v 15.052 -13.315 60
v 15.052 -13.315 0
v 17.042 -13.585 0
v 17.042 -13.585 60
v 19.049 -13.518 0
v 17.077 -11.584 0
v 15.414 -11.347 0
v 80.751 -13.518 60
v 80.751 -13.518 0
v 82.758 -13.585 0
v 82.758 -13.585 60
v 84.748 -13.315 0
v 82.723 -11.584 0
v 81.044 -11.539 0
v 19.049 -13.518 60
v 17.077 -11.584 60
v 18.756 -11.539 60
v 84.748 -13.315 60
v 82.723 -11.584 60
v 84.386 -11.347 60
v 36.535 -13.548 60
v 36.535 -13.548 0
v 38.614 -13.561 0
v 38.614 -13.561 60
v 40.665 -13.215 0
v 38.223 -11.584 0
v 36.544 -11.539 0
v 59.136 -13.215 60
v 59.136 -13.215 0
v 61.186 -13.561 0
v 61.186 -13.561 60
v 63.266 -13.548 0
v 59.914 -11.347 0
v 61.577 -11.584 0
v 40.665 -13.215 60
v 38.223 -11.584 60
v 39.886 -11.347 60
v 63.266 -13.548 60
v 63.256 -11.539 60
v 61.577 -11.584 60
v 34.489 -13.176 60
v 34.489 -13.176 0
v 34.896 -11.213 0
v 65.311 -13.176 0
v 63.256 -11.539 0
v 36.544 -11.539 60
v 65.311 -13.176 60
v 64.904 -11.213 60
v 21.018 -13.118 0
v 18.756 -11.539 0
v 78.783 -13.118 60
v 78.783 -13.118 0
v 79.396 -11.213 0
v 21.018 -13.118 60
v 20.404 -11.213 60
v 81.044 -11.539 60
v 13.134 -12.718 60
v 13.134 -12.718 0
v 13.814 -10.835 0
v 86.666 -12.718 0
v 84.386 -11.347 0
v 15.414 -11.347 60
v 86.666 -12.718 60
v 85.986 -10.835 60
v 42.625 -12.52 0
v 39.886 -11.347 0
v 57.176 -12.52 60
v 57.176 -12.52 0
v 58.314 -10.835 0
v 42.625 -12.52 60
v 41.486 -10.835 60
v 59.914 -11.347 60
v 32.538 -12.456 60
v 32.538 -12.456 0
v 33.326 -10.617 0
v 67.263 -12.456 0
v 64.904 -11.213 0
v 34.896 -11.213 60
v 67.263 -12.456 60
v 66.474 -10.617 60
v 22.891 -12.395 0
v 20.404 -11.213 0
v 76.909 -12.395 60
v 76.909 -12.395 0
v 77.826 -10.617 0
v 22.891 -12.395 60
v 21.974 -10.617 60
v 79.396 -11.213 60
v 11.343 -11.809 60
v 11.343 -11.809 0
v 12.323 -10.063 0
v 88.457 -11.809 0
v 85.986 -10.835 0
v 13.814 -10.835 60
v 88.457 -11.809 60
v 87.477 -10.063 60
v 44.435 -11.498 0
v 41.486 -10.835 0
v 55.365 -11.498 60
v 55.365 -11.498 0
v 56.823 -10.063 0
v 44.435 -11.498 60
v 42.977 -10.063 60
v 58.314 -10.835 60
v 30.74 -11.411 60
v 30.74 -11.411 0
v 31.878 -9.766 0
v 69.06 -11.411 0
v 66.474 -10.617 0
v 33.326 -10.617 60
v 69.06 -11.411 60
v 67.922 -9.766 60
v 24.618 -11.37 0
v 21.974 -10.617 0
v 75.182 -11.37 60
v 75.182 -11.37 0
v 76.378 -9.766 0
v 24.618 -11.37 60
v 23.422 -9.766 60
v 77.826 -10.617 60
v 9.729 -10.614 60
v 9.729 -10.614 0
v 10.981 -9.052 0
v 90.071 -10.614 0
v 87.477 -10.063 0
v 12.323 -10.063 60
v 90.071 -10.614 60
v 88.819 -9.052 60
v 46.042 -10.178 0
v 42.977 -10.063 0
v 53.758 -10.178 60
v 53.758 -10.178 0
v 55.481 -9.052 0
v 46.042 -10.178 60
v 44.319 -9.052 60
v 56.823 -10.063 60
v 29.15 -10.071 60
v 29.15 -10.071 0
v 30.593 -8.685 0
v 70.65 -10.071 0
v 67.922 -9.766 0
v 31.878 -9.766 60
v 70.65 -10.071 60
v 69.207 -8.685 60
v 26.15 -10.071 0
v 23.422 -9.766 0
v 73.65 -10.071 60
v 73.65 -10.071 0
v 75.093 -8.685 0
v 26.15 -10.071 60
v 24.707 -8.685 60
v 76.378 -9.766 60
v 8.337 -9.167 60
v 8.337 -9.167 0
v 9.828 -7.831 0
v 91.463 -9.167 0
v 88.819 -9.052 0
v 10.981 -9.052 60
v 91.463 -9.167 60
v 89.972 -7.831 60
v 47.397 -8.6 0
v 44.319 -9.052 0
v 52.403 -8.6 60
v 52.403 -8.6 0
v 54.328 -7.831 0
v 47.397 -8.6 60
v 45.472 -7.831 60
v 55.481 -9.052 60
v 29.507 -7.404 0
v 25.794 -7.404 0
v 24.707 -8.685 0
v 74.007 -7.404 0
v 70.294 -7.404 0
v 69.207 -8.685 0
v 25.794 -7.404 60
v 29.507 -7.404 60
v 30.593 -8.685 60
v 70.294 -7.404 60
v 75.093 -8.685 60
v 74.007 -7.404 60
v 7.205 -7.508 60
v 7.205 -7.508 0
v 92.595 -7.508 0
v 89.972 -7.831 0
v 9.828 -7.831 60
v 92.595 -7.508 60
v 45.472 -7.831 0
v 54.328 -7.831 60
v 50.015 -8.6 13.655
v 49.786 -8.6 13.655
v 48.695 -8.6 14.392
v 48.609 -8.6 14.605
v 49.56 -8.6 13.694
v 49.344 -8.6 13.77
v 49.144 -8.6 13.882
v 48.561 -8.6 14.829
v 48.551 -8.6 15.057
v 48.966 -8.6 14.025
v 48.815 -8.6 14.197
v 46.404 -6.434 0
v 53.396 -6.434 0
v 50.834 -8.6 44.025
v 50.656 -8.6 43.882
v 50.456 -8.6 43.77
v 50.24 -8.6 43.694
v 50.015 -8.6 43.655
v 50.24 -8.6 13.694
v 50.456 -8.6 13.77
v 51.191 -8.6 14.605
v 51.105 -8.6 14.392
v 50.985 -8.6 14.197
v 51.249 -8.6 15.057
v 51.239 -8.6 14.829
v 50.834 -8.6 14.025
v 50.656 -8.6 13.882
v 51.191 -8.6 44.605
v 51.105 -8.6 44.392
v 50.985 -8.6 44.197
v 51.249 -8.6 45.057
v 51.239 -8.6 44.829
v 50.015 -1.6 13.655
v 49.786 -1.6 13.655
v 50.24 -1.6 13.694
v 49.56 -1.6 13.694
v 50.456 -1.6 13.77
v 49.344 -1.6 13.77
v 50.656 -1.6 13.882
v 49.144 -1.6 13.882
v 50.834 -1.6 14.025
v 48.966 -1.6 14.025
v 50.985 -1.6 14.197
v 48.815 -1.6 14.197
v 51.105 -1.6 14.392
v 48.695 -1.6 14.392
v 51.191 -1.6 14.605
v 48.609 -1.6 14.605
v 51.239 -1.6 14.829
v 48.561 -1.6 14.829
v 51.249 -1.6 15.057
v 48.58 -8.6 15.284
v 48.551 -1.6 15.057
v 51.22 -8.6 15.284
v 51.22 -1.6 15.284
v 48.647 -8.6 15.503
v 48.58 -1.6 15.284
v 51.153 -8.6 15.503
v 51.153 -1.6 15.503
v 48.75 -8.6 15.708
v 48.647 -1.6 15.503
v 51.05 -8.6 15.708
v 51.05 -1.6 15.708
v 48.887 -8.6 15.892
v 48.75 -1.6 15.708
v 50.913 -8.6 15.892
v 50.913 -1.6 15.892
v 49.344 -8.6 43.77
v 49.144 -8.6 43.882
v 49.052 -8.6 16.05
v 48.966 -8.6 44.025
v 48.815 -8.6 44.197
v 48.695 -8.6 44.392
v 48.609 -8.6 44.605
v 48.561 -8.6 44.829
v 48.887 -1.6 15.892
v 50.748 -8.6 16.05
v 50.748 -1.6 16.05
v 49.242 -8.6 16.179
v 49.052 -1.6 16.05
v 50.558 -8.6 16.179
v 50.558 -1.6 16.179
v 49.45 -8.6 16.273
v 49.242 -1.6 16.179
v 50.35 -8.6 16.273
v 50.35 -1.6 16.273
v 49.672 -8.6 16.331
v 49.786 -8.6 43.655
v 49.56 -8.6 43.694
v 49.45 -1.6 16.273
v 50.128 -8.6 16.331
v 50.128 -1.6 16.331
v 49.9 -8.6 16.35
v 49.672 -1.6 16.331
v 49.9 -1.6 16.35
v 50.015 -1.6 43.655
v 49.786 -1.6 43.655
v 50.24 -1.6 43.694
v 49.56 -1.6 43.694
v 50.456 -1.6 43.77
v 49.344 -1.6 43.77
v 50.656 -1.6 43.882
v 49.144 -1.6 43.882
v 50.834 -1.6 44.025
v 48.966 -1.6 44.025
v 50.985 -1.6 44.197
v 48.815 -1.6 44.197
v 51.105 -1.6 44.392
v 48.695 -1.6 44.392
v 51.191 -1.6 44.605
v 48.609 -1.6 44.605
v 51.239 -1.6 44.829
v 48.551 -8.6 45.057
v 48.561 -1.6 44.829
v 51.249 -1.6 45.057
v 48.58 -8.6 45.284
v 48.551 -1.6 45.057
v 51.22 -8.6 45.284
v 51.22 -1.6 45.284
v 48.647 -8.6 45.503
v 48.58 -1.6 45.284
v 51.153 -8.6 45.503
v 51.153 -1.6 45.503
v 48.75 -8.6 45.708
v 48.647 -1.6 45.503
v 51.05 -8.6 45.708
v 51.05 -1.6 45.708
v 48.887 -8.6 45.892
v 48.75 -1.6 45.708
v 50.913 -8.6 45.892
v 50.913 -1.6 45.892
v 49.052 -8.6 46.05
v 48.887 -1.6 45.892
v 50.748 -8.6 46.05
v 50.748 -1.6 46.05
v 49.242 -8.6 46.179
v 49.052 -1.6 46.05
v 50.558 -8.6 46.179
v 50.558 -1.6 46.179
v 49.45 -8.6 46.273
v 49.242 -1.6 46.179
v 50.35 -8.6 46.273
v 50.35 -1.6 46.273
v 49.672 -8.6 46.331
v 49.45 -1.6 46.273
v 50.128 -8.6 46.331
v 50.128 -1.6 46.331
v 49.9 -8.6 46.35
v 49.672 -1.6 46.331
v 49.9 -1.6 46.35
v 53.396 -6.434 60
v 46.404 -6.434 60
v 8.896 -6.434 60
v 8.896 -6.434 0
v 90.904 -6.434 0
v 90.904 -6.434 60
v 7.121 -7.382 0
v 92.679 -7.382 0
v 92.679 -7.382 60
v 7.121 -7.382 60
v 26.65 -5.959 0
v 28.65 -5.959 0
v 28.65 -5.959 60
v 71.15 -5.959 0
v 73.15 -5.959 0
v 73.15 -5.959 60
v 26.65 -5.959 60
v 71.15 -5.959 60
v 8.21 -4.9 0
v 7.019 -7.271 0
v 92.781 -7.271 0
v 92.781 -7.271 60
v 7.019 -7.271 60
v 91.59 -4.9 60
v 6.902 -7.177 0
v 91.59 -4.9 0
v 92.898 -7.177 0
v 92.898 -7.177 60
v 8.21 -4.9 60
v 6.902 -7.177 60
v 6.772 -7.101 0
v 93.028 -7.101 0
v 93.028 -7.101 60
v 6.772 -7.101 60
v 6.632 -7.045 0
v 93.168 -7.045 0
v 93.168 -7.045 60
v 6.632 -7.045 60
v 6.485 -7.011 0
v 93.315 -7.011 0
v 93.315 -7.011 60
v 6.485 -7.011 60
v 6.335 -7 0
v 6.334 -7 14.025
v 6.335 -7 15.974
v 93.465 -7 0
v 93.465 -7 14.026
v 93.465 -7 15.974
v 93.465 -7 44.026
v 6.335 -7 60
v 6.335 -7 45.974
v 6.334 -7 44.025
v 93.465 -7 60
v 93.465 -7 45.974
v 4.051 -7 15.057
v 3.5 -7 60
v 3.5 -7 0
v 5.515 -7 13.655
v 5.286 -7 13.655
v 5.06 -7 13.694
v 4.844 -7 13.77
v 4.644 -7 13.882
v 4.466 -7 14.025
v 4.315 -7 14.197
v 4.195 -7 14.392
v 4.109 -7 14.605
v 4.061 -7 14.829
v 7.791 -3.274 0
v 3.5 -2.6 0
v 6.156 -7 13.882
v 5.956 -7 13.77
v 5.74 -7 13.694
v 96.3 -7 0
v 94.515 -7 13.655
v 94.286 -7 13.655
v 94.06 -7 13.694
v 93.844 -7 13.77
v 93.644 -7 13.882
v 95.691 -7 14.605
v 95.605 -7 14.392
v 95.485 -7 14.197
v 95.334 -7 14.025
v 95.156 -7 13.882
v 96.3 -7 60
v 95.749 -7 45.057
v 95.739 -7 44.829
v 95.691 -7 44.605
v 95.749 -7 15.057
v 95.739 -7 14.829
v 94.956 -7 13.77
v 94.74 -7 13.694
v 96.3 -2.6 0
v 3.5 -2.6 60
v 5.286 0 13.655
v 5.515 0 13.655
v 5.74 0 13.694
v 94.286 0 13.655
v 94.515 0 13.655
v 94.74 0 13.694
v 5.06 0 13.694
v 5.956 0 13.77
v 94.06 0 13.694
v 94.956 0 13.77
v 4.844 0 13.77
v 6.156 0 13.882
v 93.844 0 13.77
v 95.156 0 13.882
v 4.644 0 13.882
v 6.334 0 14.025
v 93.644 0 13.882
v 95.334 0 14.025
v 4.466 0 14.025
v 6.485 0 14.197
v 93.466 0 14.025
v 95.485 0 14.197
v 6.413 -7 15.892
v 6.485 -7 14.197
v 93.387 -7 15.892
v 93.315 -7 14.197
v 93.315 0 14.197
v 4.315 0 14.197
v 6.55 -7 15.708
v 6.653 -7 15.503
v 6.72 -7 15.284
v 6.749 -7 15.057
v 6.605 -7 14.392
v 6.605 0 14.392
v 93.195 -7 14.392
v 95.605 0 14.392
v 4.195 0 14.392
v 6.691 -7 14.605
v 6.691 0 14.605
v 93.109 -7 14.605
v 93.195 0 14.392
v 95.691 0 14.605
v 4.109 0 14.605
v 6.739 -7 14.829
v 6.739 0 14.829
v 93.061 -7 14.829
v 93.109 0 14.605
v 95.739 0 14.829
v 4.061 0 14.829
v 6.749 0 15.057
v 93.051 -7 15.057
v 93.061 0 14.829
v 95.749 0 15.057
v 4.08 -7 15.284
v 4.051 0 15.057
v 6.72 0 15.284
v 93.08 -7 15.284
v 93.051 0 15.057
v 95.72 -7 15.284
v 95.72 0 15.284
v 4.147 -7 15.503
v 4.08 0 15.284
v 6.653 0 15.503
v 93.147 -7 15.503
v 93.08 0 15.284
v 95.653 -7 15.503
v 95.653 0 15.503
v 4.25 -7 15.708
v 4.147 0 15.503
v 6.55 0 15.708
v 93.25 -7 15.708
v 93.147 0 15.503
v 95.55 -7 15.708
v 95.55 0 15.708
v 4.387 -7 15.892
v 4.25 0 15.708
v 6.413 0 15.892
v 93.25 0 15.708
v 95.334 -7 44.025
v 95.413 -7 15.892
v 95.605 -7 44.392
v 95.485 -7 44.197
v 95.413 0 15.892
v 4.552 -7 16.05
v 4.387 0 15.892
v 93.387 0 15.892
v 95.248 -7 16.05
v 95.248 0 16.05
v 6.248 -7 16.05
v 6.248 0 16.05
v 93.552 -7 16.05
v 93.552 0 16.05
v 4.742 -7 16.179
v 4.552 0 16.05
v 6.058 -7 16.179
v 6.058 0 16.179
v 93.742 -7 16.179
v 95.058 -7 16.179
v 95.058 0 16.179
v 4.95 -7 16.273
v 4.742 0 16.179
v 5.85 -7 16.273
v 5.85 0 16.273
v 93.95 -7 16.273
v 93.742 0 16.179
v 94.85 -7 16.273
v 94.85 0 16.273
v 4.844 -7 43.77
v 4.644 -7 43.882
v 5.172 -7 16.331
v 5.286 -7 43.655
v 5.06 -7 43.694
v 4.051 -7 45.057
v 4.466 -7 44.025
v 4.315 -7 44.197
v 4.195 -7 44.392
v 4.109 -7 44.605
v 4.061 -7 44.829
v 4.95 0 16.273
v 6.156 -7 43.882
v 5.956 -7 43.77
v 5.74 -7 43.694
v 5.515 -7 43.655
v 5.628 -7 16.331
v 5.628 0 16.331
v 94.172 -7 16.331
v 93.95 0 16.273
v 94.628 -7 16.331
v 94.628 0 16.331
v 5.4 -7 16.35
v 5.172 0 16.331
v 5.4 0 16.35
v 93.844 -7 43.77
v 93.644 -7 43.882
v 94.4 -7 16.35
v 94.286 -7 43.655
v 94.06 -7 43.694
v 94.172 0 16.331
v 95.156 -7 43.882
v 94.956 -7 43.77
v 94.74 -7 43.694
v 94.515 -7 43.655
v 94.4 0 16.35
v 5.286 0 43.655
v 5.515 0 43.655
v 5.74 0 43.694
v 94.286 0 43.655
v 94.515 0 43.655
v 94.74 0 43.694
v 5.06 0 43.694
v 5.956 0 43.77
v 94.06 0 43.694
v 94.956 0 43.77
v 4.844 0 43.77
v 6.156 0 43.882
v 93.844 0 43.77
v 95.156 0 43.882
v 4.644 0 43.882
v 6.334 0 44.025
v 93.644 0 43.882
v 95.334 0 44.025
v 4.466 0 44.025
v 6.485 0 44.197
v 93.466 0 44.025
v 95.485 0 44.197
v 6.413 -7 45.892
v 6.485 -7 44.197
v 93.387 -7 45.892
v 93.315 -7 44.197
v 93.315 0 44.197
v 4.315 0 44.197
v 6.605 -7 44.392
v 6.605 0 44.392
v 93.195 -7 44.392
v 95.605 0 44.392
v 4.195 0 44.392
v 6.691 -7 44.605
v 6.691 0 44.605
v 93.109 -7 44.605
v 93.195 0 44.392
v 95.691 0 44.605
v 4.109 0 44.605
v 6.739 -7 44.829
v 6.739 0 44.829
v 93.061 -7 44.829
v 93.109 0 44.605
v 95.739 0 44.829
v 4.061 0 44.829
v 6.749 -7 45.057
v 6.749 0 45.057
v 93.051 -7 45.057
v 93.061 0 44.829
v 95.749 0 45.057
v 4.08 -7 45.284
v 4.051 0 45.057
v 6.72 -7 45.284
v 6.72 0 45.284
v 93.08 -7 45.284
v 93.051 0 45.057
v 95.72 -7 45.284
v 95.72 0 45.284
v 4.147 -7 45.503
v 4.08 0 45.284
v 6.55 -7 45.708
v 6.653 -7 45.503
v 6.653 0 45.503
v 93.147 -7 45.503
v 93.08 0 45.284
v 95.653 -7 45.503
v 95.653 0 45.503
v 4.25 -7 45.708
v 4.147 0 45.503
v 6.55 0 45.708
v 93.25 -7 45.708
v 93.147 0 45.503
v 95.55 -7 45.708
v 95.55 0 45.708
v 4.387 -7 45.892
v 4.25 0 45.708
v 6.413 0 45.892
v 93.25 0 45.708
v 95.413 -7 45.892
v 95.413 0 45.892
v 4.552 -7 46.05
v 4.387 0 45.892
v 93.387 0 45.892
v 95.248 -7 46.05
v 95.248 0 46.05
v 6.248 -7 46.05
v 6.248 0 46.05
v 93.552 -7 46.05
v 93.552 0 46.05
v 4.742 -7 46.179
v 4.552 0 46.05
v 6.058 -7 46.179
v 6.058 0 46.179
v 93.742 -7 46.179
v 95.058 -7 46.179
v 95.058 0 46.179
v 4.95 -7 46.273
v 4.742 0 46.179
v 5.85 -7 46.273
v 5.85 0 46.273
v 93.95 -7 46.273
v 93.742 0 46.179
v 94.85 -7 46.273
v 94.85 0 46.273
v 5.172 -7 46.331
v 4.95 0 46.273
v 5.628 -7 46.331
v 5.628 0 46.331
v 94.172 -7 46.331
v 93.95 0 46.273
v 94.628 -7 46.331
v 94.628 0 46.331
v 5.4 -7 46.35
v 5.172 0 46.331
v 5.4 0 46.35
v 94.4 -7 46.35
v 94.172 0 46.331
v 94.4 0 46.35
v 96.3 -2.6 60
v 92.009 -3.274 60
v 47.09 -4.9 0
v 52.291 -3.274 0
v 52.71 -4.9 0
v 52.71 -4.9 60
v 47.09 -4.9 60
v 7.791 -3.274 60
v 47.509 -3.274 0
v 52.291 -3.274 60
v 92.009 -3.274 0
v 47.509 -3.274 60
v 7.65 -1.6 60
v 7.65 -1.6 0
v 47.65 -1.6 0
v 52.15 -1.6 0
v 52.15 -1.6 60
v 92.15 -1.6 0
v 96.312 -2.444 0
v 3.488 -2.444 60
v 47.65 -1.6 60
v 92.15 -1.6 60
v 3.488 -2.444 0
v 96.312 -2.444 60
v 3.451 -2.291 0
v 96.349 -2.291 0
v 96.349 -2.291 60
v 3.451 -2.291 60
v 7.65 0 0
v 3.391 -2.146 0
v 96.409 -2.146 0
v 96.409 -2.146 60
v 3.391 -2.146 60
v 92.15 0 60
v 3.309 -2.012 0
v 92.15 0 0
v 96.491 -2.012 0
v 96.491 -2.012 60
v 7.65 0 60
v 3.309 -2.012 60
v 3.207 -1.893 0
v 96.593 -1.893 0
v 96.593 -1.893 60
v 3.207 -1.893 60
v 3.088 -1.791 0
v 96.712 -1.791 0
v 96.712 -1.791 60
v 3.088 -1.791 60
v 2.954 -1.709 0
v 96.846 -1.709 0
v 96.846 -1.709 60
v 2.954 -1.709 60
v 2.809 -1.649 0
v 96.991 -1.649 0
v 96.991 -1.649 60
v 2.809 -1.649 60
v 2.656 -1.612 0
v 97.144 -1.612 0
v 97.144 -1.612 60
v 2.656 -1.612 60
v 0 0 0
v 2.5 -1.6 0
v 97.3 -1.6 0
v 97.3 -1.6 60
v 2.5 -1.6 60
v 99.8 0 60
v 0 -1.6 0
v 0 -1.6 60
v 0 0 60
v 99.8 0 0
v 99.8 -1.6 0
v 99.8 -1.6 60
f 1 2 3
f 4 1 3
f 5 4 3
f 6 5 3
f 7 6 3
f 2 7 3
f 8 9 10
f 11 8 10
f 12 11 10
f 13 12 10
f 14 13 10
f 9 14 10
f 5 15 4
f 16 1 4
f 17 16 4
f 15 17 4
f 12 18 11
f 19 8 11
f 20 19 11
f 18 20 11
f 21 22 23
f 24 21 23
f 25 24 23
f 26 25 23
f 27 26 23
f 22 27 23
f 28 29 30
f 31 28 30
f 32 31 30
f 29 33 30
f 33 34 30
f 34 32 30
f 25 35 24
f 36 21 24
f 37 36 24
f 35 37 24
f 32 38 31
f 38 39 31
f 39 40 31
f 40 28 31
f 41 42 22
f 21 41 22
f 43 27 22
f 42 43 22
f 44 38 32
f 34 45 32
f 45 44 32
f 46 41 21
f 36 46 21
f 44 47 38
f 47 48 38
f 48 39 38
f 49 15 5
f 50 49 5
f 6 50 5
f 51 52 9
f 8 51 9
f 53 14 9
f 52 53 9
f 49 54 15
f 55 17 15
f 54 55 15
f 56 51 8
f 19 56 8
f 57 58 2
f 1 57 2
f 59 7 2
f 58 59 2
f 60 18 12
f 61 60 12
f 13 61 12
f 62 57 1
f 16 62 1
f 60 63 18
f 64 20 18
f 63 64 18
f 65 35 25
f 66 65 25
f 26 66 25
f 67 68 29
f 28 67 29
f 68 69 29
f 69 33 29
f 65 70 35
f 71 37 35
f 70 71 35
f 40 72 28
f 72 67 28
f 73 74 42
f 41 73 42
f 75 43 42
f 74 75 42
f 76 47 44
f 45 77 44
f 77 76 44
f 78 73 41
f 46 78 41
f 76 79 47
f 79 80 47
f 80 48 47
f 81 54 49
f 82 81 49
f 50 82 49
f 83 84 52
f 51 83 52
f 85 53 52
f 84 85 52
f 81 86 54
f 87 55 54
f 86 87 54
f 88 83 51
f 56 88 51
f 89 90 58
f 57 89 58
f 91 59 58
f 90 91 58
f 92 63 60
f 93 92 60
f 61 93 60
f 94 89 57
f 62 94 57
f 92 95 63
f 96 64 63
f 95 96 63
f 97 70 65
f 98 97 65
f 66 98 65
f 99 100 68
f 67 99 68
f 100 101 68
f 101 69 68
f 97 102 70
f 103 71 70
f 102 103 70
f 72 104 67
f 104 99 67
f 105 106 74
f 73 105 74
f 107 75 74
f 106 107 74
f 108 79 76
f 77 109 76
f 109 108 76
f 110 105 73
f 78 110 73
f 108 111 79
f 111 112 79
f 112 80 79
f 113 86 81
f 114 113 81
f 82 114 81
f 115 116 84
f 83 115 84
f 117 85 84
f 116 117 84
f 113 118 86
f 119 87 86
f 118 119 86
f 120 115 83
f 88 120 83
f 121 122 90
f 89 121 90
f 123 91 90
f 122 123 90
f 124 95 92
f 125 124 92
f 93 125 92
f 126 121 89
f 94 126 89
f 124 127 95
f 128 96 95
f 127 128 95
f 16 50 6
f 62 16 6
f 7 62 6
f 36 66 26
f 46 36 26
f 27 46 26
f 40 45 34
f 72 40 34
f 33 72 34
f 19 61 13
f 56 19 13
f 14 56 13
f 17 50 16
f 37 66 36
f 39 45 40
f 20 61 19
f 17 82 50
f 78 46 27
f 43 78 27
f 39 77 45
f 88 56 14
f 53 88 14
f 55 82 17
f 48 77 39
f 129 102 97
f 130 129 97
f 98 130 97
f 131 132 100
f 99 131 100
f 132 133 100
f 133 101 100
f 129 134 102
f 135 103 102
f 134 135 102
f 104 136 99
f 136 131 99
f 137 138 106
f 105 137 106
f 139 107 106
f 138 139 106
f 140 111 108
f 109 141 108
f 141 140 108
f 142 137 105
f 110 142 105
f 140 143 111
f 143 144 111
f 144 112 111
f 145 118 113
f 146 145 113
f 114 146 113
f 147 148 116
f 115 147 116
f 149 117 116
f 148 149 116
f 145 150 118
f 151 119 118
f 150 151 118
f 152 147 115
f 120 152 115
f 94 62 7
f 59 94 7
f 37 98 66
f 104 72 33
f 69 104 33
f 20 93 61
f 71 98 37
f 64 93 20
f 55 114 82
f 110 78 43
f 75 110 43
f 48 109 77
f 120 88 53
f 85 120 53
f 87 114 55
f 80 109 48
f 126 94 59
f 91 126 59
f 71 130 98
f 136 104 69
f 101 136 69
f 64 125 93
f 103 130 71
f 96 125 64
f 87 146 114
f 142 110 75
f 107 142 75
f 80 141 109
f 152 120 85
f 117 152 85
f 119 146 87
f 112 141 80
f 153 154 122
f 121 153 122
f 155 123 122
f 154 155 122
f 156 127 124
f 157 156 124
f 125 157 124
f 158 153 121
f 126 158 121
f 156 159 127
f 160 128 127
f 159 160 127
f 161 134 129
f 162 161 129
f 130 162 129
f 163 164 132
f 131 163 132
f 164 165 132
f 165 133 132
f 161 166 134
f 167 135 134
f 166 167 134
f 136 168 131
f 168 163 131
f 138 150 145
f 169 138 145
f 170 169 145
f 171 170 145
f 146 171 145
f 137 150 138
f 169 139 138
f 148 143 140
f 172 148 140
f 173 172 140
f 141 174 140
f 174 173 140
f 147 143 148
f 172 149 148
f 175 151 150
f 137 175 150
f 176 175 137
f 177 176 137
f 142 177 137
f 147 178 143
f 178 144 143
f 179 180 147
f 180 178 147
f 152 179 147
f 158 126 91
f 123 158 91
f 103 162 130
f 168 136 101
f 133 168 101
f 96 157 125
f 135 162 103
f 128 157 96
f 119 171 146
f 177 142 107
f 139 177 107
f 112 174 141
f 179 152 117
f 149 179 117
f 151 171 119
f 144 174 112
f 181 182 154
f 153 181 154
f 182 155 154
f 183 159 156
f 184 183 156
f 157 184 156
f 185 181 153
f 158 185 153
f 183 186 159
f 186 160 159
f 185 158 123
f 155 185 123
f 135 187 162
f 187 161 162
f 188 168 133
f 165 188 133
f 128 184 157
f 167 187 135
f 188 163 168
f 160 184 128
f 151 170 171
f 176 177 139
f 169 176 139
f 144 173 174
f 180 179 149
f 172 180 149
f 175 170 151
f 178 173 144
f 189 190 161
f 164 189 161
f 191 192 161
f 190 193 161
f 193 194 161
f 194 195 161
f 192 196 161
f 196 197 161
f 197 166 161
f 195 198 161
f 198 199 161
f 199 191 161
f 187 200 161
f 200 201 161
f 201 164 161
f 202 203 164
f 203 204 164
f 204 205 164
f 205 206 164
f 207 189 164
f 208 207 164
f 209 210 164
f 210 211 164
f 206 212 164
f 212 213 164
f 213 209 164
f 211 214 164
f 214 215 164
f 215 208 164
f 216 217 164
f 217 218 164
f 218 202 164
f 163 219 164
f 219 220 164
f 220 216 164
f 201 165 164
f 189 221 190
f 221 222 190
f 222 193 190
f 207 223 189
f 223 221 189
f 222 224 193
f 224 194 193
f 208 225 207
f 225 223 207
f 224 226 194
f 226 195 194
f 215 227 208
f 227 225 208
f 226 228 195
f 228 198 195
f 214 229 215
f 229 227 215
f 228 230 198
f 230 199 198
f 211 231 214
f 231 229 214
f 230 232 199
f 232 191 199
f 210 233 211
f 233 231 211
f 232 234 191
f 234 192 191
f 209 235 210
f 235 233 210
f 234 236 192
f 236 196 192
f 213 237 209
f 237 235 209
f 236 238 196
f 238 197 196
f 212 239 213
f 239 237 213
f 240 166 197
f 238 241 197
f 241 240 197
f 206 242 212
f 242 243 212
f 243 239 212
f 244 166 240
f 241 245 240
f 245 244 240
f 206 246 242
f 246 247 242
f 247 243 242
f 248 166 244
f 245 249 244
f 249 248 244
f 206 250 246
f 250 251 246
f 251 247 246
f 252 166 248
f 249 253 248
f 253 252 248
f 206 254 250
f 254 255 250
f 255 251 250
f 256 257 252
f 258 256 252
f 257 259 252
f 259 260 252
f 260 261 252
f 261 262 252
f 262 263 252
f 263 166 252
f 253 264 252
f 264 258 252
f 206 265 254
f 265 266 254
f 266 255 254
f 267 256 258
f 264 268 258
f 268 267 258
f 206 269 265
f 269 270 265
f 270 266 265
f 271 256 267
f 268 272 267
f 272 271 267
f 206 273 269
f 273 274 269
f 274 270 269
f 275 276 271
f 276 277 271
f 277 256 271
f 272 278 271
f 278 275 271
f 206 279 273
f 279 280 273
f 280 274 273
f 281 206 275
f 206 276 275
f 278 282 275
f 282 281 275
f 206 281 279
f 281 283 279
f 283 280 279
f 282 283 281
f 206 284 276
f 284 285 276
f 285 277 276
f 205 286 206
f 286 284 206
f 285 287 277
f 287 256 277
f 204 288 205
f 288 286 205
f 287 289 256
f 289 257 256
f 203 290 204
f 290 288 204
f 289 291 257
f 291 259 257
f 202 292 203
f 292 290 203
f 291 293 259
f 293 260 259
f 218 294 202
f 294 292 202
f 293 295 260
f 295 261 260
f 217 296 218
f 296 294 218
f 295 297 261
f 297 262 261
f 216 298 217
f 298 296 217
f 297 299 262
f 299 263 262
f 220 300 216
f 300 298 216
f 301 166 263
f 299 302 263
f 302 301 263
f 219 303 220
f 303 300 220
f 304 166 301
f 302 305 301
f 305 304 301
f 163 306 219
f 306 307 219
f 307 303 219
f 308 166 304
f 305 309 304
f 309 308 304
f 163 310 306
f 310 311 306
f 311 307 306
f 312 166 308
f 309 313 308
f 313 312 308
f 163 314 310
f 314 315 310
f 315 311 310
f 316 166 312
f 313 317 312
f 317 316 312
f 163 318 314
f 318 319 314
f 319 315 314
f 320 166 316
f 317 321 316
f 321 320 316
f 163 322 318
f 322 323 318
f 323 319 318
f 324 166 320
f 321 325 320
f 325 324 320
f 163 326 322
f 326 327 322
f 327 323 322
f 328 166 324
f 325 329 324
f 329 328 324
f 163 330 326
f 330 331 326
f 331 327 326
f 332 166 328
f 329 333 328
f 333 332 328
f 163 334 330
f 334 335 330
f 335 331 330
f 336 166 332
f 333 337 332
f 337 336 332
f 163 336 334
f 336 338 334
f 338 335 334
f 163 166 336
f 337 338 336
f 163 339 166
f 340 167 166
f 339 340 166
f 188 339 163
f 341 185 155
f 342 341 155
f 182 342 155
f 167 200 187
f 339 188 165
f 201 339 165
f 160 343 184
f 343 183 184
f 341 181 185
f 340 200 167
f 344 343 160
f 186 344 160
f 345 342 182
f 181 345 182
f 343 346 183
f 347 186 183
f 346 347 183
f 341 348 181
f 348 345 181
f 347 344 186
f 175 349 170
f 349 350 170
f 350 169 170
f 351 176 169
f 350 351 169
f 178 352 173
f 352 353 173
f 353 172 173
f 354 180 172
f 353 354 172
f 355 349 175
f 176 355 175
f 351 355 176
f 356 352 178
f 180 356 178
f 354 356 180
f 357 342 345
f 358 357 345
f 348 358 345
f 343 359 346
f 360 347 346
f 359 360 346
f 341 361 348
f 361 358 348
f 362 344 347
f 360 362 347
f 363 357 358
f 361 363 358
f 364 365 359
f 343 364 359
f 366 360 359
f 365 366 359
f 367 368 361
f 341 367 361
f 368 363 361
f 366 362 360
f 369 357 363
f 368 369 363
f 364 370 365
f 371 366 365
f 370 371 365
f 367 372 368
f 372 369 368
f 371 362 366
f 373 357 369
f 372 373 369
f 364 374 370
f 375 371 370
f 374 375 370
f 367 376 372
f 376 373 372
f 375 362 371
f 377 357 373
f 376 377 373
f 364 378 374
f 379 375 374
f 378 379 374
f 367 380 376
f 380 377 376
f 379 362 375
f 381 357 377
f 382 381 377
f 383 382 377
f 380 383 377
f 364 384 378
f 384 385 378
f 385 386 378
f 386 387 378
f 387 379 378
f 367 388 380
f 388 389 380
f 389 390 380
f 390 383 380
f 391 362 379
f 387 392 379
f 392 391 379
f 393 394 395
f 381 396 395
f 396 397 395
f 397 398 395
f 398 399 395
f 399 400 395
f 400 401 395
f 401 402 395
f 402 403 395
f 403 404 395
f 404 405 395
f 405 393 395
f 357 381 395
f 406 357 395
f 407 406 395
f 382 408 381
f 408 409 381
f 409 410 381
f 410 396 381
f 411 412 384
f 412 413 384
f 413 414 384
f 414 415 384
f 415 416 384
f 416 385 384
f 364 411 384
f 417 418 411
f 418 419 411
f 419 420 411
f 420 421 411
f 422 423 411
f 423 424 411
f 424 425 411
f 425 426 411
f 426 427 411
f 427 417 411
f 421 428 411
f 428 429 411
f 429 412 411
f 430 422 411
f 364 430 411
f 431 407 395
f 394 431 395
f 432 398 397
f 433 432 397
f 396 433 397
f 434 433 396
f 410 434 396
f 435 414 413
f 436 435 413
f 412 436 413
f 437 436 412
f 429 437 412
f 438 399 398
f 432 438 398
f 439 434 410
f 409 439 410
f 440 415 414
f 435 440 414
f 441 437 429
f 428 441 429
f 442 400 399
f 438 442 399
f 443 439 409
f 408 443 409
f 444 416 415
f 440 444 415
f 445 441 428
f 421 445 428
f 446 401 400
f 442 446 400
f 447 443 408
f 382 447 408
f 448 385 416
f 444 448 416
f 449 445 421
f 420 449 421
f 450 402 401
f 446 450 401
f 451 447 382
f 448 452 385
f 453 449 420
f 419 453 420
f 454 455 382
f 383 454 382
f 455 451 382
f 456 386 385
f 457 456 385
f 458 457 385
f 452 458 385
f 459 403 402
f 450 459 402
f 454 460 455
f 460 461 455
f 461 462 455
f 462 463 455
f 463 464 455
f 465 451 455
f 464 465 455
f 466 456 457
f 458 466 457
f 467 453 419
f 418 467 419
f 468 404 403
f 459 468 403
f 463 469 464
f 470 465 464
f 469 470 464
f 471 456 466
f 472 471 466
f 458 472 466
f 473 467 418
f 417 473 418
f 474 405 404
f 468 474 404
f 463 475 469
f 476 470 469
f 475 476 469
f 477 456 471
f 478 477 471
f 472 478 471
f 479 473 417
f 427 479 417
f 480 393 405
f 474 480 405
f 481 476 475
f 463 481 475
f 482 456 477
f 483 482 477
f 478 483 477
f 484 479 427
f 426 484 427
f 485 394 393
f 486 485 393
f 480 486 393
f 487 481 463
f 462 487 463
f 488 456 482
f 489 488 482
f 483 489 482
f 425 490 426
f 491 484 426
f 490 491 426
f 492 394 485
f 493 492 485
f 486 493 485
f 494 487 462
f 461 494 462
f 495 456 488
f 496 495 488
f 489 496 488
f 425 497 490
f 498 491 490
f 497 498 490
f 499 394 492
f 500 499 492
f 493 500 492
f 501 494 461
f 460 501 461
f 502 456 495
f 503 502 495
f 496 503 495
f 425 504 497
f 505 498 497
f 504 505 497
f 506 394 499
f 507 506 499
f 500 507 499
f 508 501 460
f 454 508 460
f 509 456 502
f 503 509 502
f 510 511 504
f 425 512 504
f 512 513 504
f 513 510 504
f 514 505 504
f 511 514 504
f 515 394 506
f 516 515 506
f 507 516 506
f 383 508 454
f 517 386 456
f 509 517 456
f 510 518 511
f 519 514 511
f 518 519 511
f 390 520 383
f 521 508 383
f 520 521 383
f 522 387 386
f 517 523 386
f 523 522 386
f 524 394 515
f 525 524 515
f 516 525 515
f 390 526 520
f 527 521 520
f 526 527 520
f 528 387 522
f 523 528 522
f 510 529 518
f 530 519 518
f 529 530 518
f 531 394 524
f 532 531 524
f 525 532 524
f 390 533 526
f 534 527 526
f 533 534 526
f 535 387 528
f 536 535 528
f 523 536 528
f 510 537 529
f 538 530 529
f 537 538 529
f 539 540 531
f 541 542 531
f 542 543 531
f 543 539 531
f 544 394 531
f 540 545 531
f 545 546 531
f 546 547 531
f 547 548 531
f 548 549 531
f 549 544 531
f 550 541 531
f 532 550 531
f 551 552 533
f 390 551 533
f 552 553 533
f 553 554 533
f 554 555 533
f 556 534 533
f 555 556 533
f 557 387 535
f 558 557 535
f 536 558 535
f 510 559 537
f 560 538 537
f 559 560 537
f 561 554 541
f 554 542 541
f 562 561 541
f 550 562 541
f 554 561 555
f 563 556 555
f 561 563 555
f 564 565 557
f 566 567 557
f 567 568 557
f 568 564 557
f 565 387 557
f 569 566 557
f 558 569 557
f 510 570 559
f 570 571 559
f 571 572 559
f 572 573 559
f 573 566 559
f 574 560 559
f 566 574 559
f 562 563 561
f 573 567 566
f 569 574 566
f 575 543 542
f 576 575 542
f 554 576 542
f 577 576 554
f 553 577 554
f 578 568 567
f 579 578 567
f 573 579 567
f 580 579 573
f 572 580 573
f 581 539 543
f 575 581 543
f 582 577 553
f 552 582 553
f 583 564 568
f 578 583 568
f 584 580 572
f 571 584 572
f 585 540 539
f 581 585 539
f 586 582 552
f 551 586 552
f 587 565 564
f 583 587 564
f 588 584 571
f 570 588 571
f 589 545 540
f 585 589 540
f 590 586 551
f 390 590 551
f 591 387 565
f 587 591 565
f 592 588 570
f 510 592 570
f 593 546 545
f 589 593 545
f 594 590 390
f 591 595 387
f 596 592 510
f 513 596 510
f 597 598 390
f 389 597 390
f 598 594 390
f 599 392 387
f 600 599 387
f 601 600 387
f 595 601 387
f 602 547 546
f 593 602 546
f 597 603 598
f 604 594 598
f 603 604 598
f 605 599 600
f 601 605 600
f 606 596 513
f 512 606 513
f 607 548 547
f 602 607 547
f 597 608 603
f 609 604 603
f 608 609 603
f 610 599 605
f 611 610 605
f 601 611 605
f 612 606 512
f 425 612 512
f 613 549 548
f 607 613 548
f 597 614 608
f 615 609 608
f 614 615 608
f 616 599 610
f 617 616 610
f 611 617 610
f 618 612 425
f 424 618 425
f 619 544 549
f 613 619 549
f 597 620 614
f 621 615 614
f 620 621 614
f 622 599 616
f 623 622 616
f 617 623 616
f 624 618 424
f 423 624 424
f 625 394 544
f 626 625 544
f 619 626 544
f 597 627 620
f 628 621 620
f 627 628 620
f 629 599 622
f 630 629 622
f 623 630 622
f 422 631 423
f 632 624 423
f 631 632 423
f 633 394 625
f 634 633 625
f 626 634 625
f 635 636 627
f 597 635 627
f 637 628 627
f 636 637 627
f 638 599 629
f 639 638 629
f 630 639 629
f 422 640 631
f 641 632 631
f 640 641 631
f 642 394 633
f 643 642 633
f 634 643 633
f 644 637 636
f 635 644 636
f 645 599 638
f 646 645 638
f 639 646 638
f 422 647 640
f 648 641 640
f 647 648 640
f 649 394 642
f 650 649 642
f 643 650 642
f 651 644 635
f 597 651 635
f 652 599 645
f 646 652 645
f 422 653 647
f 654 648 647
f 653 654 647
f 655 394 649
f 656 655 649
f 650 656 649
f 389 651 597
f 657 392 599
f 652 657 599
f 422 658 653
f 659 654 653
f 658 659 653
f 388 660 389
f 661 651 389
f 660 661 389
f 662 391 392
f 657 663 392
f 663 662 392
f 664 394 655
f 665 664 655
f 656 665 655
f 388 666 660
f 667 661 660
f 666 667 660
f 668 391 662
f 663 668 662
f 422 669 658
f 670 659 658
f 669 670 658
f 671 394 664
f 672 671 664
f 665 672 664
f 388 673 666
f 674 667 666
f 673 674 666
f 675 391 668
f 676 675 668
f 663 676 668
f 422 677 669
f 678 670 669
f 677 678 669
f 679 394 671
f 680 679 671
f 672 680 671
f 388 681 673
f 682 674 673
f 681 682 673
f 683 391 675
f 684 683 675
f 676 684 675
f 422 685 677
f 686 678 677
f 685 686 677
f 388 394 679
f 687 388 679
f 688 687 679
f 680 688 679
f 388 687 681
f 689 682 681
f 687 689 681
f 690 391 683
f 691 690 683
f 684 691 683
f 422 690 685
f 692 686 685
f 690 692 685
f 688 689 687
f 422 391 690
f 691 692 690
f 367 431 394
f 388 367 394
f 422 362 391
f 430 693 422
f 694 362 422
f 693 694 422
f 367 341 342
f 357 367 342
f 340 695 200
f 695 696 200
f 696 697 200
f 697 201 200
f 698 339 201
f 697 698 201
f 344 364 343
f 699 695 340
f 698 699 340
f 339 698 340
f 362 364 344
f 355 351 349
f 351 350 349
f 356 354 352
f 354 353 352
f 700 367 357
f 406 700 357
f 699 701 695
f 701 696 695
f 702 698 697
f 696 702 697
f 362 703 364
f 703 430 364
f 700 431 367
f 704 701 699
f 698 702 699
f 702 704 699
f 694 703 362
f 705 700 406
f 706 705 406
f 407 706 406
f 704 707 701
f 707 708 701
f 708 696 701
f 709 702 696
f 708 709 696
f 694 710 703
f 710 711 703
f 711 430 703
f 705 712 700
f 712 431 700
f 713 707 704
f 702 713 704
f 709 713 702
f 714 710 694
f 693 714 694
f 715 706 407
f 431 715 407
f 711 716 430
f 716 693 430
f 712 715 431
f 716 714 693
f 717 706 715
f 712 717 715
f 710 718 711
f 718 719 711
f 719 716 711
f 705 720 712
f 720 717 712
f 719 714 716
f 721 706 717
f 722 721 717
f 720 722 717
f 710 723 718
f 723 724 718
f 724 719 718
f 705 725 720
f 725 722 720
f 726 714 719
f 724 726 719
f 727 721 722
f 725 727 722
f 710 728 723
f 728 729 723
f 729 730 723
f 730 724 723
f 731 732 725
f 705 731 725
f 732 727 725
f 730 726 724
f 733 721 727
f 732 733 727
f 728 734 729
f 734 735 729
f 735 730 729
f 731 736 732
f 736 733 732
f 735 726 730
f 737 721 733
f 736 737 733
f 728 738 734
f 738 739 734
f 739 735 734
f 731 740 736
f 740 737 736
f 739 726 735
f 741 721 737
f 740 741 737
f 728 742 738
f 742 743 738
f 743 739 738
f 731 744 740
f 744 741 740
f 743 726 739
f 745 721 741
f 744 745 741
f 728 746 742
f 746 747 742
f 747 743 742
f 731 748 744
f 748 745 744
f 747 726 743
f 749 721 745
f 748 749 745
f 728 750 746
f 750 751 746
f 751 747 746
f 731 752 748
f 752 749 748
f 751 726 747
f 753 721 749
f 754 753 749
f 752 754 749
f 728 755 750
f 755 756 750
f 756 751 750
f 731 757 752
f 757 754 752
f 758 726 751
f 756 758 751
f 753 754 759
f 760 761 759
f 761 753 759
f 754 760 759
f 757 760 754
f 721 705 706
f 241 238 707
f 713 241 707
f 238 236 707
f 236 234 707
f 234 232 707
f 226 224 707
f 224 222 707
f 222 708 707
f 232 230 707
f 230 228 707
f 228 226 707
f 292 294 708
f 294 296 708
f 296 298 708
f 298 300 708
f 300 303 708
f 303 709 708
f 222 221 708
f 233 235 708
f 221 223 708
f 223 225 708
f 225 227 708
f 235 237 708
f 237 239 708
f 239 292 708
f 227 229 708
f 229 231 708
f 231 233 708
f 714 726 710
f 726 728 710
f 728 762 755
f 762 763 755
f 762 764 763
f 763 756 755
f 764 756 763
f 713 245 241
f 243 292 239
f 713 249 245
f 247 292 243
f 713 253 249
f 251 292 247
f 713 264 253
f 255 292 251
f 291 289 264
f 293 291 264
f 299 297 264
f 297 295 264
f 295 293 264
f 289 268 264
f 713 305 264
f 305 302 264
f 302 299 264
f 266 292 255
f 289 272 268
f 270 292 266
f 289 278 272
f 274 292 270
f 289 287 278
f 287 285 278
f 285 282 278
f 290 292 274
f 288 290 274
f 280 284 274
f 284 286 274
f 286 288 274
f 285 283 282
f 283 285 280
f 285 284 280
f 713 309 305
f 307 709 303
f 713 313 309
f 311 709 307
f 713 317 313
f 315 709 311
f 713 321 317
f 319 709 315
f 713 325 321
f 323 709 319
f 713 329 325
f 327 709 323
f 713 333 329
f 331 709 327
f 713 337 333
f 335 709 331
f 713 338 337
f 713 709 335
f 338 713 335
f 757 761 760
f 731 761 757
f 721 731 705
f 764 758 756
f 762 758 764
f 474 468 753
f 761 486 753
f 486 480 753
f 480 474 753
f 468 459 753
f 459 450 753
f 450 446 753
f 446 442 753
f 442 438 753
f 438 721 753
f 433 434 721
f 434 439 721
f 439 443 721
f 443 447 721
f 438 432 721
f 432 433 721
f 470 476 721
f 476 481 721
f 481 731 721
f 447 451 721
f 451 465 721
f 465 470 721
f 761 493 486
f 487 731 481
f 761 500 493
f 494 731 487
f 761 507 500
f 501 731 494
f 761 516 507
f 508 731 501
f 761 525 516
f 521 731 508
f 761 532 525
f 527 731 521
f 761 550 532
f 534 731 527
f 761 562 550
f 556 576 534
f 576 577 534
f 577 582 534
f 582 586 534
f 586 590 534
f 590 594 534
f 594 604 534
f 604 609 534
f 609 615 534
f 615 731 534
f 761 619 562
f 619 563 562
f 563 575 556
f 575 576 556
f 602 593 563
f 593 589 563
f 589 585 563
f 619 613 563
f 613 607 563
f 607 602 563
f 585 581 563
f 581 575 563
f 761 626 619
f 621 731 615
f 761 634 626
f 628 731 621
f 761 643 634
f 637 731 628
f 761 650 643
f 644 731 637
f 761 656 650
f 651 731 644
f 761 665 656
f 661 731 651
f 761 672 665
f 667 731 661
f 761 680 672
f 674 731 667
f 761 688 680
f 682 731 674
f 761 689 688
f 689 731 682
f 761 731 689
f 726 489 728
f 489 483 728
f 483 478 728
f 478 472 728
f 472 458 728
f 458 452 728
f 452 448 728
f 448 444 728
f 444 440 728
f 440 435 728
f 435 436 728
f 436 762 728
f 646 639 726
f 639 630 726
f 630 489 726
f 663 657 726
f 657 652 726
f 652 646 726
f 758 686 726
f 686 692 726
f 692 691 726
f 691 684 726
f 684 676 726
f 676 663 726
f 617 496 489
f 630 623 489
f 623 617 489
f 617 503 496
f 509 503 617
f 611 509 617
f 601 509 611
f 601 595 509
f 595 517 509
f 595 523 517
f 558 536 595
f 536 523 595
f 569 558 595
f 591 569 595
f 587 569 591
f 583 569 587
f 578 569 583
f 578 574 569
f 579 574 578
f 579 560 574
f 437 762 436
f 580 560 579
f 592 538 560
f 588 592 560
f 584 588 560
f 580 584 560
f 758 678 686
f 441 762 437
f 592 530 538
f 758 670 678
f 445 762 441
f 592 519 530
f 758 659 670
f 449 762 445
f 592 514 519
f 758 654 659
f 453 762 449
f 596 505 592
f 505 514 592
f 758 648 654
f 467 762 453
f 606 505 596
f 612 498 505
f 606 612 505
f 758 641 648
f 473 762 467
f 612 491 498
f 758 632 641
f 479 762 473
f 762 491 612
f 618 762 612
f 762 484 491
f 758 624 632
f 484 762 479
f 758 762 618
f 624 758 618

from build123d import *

# Parameters (mm, degrees)
BOSS_EXTRUDE1_DEPTH                  = 60
FILLET1_R                            = 1
F_2_7_START                          = -7
F_2_7_2_7_DIAMETER_HOLE1_OUTLINE_R   = 1.35
F_2_7_2_7_DIAMETER_HOLE1_DEPTH       = 7
F_2_7_START_2                        = -8.6
F_2_7_2_7_DIAMETER_HOLE1_2_OUTLINE_R = 1.35
F_2_7_2_7_DIAMETER_HOLE1_2_DEPTH     = 1.6


# Read off the part's stored shape, not the designer's step: Ø2.7 (2.7) Diameter Hole1
with BuildPart() as part:
    # Sketch1 → Boss-Extrude1 (new body)
    with BuildSketch(Plane.XY):
        with BuildLine():
            Line((0, 0), (7.65, 0))
            Line((7.65, 0), (7.65, -1.6))
            ThreePointArc((7.65, -1.6), (15.413932023, -11.346794345), (26.65, -5.958898944))
            Line((26.65, -5.958898944), (28.65, -5.958898944))
            ThreePointArc((28.65, -5.958898944), (39.886067977, -11.346794345), (47.65, -1.6))
            Line((47.65, -1.6), (52.15, -1.6))
            ThreePointArc((52.15, -1.6), (59.913932023, -11.346794345), (71.15, -5.958898944))
            Line((71.15, -5.958898944), (73.15, -5.958898944))
            ThreePointArc((73.15, -5.958898944), (84.386067977, -11.346794345), (92.15, -1.6))
            Line((92.15, -1.6), (92.15, 0))
            Line((92.15, 0), (99.8, 0))
            Line((99.8, 0), (99.8, -1.6))
            Line((99.8, -1.6), (96.3, -1.6))
            Line((96.3, -1.6), (96.3, -7))
            Line((96.3, -7), (92.86634266, -7))
            ThreePointArc((92.86634266, -7), (84.043434268, -13.449679602), (73.65, -10.070537173))
            Line((73.65, -10.070537173), (70.65, -10.070537173))
            ThreePointArc((70.65, -10.070537173), (61.186027008, -13.561218837), (52.403205655, -8.6))
            Line((52.403205655, -8.6), (47.396794345, -8.6))
            ThreePointArc((47.396794345, -8.6), (38.613972992, -13.561218837), (29.15, -10.070537173))
            Line((29.15, -10.070537173), (26.15, -10.070537173))
            ThreePointArc((26.15, -10.070537173), (15.756565732, -13.449679602), (6.93365734, -7))
            Line((6.93365734, -7), (3.5, -7))
            Line((3.5, -7), (3.5, -1.6))
            Line((3.5, -1.6), (0, -1.6))
            Line((0, -1.6), (0, 0))
        make_face()
    extrude(amount=BOSS_EXTRUDE1_DEPTH)

    # Fillet1
    fillet1_edges = [part.edges().sort_by_distance(p)[0] for p in [
        (96.3, -1.6, 30),
        (92.86634266, -7, 30),
        (6.93365734, -7, 30),
        (3.5, -1.6, 30),
    ]]
    fillet(fillet1_edges, radius=FILLET1_R)

    # Ø2.7 (2.7) Diameter Hole1 outline → Ø2.7 (2.7) Diameter Hole1 (cut)
    with BuildSketch(Plane(origin=(0, 0, 0), x_dir=(1, 0, 0), z_dir=(0, 1, 0)).offset(F_2_7_START)):
        with Locations((94.4, -15)):
            Circle(F_2_7_2_7_DIAMETER_HOLE1_OUTLINE_R)
        with Locations((94.4, -45)):
            Circle(F_2_7_2_7_DIAMETER_HOLE1_OUTLINE_R)
        with Locations((49.9, -15)):
            Circle(F_2_7_2_7_DIAMETER_HOLE1_OUTLINE_R)
        with Locations((49.9, -45)):
            Circle(F_2_7_2_7_DIAMETER_HOLE1_OUTLINE_R)
    f_2_7_2_7_diameter_hole1 = extrude(amount=F_2_7_2_7_DIAMETER_HOLE1_DEPTH, mode=Mode.SUBTRACT)

    # 2.7 _2.7_ Diameter Hole1 2 outline → 2.7 _2.7_ Diameter Hole1 2 (cut)
    with BuildSketch(Plane(origin=(0, 0, 0), x_dir=(1, 0, 0), z_dir=(0, 1, 0)).offset(F_2_7_START_2)):
        with Locations((49.9, -15)):
            Circle(F_2_7_2_7_DIAMETER_HOLE1_2_OUTLINE_R)
        with Locations((49.9, -45)):
            Circle(F_2_7_2_7_DIAMETER_HOLE1_2_OUTLINE_R)
    f_2_7_2_7_diameter_hole1_2 = extrude(amount=F_2_7_2_7_DIAMETER_HOLE1_2_DEPTH, mode=Mode.SUBTRACT)

    # Mirror1: Ø2.7 (2.7) Diameter Hole1, 2.7 _2.7_ Diameter Hole1 2 across plane
    add(f_2_7_2_7_diameter_hole1.mirror(Plane.ZY.offset(-49.9)), mode=Mode.SUBTRACT)
    add(f_2_7_2_7_diameter_hole1_2.mirror(Plane.ZY.offset(-49.9)), mode=Mode.SUBTRACT)


solid = part.part
